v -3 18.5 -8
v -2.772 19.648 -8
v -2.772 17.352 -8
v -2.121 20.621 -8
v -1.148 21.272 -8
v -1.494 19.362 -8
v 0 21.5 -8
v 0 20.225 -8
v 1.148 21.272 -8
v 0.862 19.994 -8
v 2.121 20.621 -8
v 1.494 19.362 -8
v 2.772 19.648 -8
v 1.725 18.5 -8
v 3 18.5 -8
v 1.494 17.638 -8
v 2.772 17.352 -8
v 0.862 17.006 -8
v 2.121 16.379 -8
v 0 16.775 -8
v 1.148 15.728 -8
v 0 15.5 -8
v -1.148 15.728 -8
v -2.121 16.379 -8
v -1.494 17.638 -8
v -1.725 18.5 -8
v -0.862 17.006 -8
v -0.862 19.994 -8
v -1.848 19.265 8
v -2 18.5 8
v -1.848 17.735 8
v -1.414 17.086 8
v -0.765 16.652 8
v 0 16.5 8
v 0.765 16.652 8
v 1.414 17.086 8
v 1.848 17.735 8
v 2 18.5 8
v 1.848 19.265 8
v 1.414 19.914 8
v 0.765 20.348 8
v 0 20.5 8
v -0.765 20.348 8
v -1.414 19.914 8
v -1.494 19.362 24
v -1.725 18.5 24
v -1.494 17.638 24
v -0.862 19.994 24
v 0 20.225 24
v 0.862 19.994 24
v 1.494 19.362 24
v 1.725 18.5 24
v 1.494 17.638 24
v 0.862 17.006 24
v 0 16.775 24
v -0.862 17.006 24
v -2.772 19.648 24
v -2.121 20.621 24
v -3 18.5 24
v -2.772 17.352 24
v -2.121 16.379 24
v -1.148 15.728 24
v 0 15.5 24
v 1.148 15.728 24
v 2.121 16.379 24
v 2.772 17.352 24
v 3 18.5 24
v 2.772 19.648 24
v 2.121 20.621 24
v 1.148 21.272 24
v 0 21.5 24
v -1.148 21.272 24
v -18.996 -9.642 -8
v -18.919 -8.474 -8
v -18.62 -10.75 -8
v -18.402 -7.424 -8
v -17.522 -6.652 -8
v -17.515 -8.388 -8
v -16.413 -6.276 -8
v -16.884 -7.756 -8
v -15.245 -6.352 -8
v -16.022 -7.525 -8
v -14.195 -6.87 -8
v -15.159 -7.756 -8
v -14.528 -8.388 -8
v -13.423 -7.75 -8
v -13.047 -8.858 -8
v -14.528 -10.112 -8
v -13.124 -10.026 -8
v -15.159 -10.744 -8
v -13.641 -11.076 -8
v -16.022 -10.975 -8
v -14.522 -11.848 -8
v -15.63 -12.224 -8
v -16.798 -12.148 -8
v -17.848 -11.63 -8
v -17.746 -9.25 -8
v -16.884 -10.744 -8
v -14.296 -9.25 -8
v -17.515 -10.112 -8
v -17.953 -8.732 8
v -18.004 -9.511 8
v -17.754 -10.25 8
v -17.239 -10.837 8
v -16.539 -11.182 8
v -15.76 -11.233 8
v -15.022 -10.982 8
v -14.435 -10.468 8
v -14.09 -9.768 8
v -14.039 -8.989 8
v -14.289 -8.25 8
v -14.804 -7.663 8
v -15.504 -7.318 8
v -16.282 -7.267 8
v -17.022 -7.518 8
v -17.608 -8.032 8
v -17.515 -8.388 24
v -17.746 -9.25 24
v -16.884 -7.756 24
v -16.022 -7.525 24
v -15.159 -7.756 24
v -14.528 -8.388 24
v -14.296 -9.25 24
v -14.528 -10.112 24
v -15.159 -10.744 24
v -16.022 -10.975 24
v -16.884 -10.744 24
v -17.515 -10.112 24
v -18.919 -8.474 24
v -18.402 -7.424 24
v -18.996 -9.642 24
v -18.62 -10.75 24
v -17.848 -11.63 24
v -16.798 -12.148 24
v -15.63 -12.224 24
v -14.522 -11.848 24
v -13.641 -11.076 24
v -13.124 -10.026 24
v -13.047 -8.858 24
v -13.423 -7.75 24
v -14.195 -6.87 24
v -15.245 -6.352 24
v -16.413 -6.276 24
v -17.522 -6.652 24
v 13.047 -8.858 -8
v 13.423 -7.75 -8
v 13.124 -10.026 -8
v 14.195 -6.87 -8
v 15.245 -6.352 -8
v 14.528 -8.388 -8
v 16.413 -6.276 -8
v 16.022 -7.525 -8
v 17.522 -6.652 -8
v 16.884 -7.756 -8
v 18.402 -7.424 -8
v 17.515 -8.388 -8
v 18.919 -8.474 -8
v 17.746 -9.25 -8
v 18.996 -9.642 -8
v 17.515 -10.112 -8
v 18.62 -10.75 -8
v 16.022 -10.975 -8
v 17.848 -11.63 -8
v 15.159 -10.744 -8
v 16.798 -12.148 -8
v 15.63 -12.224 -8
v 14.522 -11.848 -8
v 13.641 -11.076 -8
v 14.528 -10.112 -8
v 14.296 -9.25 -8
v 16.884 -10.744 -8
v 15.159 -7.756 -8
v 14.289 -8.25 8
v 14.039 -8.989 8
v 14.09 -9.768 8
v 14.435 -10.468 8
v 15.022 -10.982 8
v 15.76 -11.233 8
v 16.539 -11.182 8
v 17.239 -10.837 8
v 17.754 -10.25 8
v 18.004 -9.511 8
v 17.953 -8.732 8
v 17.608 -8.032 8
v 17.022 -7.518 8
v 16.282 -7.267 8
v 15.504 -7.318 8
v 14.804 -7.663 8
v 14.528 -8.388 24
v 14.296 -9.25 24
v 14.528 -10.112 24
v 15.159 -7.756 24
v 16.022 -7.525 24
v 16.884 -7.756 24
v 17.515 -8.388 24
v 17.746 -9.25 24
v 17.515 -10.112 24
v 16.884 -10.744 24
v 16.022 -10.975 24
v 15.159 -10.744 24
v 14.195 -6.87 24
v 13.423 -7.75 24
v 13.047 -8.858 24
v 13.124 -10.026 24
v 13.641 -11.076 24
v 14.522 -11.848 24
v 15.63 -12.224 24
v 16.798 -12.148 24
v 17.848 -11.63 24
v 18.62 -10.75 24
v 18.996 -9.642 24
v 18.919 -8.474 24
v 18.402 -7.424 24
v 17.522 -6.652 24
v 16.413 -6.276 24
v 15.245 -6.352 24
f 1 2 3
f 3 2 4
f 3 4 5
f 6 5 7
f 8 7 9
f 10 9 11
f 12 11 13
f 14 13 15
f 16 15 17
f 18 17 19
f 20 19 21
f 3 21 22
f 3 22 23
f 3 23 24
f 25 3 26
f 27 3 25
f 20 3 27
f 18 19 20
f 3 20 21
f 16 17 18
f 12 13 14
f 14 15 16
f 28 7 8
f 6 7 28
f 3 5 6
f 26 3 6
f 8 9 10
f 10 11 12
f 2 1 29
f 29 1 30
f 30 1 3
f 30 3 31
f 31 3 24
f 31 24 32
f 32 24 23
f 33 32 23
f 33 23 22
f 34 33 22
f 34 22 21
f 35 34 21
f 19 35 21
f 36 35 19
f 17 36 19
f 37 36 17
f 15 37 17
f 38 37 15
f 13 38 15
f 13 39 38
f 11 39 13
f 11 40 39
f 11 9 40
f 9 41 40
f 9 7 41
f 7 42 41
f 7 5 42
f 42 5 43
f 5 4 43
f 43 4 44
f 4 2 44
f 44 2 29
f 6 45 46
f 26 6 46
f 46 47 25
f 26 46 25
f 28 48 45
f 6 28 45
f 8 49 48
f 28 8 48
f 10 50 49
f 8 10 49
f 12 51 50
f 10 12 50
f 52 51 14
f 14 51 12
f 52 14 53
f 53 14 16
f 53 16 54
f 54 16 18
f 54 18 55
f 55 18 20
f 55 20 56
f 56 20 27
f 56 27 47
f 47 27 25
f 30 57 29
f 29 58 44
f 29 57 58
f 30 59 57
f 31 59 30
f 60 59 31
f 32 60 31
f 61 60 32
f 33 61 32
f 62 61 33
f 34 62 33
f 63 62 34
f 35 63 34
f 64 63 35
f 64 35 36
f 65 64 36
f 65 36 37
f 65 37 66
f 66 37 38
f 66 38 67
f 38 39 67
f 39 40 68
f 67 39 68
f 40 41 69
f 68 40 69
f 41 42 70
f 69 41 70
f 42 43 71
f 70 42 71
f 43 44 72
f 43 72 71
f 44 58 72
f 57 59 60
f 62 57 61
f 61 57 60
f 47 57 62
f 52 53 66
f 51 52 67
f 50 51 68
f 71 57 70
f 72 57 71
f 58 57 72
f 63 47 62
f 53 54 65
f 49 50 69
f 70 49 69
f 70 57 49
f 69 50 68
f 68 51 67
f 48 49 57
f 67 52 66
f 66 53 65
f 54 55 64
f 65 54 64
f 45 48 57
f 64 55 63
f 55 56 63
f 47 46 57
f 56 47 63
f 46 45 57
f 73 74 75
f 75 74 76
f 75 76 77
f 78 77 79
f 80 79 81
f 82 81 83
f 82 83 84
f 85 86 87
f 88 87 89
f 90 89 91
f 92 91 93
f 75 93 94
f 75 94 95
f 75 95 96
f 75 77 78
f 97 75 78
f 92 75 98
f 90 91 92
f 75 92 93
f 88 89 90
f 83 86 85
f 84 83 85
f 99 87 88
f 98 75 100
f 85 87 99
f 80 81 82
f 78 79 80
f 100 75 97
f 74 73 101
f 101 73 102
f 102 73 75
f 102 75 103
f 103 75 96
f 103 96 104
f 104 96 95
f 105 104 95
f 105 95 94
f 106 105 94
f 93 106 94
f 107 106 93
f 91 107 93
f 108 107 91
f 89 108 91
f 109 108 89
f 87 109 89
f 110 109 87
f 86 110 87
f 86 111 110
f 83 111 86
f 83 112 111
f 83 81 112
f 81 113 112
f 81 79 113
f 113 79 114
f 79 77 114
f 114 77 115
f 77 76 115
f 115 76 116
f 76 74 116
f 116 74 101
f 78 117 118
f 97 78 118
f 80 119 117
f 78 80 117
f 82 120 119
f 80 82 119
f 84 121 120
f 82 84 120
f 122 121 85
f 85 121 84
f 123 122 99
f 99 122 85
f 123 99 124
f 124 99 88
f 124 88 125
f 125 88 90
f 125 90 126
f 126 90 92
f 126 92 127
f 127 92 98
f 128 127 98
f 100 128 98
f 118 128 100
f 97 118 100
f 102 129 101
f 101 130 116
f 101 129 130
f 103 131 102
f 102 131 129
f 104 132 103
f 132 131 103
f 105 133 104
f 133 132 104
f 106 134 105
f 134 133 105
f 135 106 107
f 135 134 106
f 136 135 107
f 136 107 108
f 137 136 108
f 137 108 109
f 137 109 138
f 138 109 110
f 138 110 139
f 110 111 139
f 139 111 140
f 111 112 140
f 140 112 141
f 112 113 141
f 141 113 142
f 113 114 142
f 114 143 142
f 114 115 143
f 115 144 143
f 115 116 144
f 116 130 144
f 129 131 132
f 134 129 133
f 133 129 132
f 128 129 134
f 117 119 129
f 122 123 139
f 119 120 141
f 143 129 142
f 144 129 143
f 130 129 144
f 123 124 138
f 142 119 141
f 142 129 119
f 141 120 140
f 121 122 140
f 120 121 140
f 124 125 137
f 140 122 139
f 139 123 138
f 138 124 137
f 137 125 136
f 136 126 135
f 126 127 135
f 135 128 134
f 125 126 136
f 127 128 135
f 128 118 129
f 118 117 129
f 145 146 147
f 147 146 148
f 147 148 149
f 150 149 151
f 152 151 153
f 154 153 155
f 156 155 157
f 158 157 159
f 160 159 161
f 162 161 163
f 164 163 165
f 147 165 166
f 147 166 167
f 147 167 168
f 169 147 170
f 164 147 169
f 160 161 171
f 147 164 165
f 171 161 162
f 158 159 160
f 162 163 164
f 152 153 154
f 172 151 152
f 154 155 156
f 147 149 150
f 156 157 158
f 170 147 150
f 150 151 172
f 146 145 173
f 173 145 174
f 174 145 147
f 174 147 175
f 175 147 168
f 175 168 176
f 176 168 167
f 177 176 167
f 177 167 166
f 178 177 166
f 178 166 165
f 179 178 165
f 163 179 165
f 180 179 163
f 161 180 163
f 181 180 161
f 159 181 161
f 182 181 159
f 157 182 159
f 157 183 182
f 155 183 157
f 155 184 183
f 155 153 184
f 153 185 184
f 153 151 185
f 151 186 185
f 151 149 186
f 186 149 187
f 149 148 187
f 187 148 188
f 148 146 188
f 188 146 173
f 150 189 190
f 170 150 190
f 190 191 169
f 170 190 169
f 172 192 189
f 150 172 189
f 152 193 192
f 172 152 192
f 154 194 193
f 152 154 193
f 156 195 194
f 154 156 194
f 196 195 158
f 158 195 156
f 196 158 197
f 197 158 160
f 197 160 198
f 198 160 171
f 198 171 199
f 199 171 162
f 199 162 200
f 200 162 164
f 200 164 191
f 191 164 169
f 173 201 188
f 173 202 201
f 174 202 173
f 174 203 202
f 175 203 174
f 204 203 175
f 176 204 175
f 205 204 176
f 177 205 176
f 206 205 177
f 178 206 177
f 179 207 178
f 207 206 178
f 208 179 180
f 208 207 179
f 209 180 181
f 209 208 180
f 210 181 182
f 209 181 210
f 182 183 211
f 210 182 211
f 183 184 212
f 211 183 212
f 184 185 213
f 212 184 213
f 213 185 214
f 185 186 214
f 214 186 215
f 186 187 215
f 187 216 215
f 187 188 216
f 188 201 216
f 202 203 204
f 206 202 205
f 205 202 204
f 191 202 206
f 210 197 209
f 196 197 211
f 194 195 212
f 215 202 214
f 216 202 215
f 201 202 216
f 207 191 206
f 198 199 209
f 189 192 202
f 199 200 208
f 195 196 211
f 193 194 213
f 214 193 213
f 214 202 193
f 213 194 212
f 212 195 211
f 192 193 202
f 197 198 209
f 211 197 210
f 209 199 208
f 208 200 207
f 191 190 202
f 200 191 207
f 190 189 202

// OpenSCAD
// file: configuration.scad
// Increase this if your slicer or printer make holes too tight.
extra_radius = 0.1;

// OD = outside diameter, corner to corner.
m3_nut_od = 6.1;
m3_nut_radius = m3_nut_od/2 + 0.2 + extra_radius;

// Major diameter of metric 3mm thread.
m3_major = 2.85;
m3_radius = m3_major/2 + extra_radius;
m3_wide_radius = m3_major/2 + extra_radius + 0.2;

// OD = outside diameter, corner to corner.
m5_nut_od = 8.1;
m5_nut_radius = m5_nut_od/2 + 0.2 + extra_radius;

// Major diameter of metric 5mm thread.
m5_major = 4.85;
m5_radius = m5_major/2 + extra_radius;
m5_wide_radius = m5_major/2 + extra_radius + 0.2;

// NEMA17 stepper motors.
motor_shaft_diameter = 5;
motor_shaft_radius = motor_shaft_diameter/2 + extra_radius;

// Frame brackets. M3x8mm screws work best with 3.6 mm brackets.
thickness = 3.6;

// OpenBeam or Misumi. Currently only 15x15 mm, but there is a plan
// to make models more parametric and allow 20x20 mm in the future.
extrusion = 15;
// main file
include <configuration.scad>;

separation = 44;  // Distance between ball joint mounting faces.
offset = 22;  // Same as DELTA_EFFECTOR_OFFSET in Marlin.
mount_radius = 18.5;  // Hotend mounting screws, standard would be 25mm.
jhead_od_radius = 8;  // Hole for the hotend (J-Head diameter is 16mm).
jhead_id_radius = 6;
height = 6;
jhead_height=5;
mount_height=32;


  difference() {
    union() {

		for (a = [0:120:359]) rotate([0, 0, a]) {
    		  translate([0, mount_radius,0])cylinder(r1=3,r2=2, h=mount_height/2, center=true, $fn=16);
    		  translate([0, mount_radius,16])cylinder(r1=2,r2=3, h=mount_height/2, center=true, $fn=16);
		}
		
    }

    for (a = [0:30:359]) rotate([0, 0, a]) {
      translate([0, mount_radius, 0])	cylinder(r=m3_wide_radius, h=2*mount_height+height, center=true, $fn=12);
    }

  }
